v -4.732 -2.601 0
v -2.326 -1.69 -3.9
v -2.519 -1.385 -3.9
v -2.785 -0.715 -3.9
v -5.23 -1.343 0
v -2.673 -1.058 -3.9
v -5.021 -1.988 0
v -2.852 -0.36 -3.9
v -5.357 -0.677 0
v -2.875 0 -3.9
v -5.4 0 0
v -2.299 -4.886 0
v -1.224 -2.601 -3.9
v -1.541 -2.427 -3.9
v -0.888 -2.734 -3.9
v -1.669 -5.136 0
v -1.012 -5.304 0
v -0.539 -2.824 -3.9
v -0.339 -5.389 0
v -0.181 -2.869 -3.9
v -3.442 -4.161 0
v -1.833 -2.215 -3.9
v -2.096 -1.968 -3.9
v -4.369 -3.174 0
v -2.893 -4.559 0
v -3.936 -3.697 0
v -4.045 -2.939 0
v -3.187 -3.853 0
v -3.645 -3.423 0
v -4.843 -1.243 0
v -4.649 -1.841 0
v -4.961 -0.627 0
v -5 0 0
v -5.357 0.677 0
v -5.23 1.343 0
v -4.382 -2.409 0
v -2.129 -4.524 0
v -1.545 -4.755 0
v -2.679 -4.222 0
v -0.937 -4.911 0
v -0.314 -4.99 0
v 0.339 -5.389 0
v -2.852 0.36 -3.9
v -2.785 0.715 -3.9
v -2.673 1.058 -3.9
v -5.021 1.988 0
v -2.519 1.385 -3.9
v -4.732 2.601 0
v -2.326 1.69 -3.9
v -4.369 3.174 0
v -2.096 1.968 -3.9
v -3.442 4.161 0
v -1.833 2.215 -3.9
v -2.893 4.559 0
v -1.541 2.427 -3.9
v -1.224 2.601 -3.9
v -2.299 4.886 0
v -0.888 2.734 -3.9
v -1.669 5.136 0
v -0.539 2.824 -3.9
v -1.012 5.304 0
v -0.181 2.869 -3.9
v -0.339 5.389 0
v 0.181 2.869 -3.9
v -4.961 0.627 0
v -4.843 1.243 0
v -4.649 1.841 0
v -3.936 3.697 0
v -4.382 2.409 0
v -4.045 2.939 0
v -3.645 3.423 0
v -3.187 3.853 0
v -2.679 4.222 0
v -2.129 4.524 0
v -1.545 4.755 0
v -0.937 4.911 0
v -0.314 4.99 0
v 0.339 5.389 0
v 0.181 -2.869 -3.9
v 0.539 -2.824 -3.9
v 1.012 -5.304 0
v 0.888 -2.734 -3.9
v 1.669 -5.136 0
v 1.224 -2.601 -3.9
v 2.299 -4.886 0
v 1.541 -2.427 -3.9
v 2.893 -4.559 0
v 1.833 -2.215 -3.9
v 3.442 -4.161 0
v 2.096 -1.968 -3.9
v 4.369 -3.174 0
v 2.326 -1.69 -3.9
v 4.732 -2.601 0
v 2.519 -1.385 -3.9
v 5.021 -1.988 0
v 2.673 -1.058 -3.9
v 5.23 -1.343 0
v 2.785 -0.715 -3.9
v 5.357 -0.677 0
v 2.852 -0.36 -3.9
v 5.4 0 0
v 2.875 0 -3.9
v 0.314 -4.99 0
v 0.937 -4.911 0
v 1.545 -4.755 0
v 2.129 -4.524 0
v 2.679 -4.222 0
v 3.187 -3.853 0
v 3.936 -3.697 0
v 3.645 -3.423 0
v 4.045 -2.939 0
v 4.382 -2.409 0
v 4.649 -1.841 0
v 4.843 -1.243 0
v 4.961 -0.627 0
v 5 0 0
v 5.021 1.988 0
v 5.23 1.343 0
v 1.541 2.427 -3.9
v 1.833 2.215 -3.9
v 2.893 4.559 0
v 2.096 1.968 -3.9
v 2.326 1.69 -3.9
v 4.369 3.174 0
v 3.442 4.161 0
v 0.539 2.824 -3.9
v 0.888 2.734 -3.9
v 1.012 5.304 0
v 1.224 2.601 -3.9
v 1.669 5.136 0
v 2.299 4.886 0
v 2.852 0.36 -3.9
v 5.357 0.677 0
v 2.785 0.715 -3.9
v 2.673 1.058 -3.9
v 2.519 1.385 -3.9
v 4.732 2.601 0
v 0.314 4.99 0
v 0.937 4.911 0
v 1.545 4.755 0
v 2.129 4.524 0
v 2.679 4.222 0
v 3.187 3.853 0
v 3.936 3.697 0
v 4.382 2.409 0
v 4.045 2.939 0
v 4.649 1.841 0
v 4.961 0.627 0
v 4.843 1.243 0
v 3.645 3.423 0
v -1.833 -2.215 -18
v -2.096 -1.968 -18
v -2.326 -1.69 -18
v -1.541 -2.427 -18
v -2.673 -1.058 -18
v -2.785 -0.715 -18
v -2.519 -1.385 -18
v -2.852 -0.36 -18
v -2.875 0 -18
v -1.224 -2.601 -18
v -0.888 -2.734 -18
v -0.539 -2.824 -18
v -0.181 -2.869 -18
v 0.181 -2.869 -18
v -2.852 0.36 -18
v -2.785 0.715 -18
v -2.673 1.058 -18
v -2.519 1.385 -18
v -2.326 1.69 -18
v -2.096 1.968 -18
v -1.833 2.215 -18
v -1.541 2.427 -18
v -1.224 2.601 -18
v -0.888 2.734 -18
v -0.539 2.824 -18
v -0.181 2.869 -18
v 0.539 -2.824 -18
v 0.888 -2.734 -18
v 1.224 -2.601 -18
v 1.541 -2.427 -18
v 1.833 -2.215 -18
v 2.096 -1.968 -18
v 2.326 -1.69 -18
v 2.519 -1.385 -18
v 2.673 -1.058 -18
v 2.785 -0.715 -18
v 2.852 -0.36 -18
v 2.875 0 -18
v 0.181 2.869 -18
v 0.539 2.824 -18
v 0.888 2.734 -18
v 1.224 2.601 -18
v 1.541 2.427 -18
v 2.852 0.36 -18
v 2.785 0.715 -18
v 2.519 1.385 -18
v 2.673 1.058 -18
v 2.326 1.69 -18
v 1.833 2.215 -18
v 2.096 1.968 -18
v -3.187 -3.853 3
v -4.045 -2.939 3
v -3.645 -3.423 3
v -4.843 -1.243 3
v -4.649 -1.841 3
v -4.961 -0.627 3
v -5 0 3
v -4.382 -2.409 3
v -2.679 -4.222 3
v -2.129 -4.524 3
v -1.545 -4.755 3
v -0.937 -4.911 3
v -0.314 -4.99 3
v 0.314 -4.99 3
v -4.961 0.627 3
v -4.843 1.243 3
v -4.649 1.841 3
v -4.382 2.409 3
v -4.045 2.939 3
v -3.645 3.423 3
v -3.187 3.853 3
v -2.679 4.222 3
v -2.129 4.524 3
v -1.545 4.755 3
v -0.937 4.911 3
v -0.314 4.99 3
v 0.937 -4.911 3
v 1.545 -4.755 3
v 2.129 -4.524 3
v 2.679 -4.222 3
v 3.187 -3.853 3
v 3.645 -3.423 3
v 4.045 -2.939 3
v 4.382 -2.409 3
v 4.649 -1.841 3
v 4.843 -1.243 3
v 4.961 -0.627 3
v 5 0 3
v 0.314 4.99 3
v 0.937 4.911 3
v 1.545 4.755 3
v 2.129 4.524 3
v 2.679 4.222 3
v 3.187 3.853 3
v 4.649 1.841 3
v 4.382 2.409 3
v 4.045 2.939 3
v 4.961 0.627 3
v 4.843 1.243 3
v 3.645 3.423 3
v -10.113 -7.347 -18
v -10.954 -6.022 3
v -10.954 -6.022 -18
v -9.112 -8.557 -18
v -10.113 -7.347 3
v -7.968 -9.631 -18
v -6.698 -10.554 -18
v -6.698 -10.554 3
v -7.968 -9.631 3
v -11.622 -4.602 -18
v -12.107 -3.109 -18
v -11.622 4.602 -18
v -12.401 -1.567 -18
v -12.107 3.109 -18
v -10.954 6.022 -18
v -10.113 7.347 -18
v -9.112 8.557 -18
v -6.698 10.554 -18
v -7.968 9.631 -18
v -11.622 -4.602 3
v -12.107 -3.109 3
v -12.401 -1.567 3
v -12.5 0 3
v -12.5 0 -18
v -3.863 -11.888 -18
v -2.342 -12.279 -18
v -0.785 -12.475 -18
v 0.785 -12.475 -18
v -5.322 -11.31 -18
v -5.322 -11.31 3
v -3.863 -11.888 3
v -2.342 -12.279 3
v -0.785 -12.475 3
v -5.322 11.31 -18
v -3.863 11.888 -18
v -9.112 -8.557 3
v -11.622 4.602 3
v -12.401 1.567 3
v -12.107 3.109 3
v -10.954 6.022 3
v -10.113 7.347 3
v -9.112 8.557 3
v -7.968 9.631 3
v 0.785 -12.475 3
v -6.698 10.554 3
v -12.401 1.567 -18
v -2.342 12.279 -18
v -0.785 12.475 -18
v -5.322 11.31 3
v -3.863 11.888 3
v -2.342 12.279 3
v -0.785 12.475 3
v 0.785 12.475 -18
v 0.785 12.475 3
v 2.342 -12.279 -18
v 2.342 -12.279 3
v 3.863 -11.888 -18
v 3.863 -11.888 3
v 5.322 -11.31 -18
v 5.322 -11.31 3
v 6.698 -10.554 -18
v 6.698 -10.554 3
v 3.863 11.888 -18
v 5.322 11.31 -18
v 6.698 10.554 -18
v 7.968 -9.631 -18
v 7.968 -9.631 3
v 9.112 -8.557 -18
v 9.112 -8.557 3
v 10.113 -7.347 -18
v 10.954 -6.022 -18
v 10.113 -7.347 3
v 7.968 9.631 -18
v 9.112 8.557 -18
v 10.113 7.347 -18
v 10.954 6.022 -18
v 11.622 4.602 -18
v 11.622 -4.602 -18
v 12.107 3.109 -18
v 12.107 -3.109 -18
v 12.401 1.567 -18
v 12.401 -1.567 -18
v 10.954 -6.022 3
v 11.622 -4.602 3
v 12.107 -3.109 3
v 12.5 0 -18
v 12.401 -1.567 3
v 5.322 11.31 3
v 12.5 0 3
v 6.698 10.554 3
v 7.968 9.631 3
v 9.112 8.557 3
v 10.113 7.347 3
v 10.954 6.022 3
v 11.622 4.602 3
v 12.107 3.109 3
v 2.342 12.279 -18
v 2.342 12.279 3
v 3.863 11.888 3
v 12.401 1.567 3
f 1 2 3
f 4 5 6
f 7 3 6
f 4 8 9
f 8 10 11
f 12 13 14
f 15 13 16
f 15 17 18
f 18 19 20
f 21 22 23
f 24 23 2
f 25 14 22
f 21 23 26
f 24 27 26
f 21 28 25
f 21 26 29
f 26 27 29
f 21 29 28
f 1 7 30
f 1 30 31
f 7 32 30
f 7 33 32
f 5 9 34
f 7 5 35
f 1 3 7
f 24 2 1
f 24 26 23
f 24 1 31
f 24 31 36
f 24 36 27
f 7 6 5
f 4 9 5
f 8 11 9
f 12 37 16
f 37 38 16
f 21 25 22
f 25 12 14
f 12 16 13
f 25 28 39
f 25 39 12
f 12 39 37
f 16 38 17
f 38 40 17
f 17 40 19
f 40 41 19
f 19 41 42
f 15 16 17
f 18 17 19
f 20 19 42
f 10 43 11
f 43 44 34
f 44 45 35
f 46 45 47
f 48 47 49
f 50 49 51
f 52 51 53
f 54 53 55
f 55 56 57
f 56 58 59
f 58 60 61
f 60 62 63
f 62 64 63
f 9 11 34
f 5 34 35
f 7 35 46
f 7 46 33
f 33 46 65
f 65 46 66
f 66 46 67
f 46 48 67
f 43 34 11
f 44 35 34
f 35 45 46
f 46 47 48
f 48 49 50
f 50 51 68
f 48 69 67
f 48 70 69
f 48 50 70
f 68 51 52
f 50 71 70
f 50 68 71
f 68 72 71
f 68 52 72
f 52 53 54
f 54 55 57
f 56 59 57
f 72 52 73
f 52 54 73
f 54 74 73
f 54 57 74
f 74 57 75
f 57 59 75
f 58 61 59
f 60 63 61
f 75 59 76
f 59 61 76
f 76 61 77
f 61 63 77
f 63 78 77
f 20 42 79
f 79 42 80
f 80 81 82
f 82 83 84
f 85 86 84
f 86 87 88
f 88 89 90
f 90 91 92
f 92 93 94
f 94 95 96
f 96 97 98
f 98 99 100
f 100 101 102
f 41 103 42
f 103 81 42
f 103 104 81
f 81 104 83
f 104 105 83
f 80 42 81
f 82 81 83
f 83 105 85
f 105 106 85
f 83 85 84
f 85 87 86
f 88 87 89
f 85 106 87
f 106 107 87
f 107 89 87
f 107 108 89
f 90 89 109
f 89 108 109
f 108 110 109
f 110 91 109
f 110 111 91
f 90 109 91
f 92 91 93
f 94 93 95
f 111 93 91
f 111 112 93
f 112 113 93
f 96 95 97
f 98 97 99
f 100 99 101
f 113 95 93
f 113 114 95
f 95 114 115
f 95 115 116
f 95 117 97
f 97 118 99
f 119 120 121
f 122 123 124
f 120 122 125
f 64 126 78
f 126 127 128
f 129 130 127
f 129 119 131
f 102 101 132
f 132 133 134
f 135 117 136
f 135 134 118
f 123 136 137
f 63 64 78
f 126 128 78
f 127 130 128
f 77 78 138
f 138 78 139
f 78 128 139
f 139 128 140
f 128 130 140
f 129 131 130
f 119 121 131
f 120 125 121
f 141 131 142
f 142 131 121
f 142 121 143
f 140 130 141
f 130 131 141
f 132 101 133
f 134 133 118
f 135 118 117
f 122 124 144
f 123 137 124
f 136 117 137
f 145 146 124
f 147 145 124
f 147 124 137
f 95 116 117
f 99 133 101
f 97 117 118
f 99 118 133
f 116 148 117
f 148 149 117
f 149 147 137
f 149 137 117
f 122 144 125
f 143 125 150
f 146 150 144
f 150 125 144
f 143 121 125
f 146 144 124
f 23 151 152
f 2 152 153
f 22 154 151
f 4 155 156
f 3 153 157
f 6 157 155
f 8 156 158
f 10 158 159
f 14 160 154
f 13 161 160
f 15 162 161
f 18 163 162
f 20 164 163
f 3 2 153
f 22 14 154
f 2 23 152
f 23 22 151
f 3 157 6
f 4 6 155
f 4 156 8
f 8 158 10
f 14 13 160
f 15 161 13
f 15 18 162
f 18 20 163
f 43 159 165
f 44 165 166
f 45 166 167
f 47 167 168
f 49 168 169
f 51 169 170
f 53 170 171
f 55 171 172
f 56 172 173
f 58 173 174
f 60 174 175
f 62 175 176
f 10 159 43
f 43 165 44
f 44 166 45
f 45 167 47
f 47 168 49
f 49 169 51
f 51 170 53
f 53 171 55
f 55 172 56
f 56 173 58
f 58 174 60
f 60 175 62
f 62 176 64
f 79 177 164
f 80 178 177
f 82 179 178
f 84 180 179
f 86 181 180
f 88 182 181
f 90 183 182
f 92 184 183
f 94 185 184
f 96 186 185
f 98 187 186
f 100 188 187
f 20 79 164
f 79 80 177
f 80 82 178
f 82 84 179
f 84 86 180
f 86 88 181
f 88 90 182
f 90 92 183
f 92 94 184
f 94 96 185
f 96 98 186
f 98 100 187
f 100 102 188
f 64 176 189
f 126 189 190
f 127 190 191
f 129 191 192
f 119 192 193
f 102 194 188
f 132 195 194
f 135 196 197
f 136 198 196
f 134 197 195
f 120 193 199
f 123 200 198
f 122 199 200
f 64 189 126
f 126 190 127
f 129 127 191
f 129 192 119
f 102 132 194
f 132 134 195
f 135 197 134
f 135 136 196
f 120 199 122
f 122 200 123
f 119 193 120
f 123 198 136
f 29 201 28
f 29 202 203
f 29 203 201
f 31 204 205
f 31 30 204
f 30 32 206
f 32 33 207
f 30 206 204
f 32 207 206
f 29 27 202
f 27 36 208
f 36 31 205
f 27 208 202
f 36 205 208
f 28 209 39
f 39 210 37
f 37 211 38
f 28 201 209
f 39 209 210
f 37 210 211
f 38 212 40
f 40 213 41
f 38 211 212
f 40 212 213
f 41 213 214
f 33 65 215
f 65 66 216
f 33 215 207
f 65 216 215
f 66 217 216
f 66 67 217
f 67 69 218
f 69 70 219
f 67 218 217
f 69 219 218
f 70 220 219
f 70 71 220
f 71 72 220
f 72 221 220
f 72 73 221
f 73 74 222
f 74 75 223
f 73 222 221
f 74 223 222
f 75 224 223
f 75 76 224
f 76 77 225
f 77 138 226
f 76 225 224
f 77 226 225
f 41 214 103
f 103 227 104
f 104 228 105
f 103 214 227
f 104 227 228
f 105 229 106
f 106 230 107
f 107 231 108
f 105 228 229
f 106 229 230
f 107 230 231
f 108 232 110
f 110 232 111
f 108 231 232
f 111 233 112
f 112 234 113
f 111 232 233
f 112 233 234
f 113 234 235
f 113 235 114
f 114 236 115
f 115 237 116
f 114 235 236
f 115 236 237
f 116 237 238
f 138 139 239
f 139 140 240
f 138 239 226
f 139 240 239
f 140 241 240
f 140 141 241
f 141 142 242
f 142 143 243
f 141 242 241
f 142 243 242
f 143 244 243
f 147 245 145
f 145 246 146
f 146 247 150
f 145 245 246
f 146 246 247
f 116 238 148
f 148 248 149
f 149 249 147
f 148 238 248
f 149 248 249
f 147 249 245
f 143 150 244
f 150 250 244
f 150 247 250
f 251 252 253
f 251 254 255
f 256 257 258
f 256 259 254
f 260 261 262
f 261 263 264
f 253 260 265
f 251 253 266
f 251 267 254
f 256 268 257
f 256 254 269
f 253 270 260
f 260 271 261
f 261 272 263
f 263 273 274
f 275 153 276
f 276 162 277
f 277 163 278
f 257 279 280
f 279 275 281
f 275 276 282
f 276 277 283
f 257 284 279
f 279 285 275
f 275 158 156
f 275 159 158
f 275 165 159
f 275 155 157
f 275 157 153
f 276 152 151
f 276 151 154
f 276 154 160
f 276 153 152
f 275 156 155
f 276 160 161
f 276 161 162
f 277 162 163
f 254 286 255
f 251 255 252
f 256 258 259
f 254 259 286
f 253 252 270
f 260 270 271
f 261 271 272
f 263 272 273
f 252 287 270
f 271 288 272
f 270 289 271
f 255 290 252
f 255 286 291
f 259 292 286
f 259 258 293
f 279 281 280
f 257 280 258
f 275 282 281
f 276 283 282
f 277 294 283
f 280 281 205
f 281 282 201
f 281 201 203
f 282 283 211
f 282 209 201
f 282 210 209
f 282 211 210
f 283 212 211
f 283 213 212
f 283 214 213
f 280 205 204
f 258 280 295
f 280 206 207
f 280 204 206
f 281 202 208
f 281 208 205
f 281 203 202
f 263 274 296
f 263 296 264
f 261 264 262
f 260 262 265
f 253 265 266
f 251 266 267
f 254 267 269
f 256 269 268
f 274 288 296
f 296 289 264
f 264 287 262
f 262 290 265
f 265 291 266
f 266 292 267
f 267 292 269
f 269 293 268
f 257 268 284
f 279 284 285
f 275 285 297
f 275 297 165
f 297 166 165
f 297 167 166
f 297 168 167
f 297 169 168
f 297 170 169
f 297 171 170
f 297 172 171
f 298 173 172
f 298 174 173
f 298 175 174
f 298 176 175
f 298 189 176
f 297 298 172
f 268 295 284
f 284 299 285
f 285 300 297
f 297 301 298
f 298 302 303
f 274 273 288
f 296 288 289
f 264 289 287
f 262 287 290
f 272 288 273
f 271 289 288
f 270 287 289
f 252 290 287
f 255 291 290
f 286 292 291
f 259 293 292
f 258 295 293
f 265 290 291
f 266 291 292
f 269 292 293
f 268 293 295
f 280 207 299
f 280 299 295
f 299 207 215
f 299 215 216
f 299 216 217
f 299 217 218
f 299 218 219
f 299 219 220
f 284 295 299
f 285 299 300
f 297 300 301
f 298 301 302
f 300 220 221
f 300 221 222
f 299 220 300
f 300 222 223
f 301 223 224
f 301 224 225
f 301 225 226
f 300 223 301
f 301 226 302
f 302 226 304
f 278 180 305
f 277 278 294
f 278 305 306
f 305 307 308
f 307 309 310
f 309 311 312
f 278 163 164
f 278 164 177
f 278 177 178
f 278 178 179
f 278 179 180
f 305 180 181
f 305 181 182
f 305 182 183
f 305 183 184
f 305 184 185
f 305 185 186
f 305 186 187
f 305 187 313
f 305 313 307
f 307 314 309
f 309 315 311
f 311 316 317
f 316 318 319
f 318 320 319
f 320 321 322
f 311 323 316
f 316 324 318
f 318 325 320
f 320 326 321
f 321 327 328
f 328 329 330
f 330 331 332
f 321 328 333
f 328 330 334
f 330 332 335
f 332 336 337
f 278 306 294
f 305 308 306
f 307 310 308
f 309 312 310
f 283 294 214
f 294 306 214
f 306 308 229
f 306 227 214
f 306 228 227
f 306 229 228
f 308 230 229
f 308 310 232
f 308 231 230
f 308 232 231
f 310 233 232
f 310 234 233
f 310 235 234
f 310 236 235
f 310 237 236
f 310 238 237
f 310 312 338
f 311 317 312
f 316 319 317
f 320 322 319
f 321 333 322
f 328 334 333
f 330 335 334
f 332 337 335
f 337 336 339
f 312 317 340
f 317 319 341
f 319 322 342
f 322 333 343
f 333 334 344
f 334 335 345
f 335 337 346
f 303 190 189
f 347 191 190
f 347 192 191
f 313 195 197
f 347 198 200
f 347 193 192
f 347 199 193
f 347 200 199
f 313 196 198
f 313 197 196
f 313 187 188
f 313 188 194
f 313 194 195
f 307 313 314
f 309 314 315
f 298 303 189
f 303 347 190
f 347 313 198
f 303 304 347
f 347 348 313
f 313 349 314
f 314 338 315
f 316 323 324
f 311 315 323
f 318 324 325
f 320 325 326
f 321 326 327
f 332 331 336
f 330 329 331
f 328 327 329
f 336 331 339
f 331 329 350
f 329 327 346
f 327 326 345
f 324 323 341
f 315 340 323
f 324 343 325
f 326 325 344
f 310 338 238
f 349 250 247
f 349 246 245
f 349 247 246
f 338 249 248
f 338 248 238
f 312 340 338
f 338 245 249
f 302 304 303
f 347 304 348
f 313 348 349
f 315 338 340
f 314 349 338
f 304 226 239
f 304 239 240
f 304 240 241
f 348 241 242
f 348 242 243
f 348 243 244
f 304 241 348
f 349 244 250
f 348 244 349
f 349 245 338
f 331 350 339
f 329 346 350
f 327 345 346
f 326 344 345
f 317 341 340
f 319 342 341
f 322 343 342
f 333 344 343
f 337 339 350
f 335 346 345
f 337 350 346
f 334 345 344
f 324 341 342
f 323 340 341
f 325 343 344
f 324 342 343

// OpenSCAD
$fn = 50;


difference() {
	union() {
		translate(v = [0, 0, -18.0000000000]) {
			cylinder(h = 21, r = 12.5000000000);
		}
	}
	union() {
		translate(v = [0, 0, 0]) {
			rotate(a = [0, 0, 0]) {
				difference() {
					union() {
						translate(v = [0, 0, -21.0000000000]) {
							cylinder(h = 21, r = 2.6000000000);
						}
						translate(v = [0, 0, -3.9000000000]) {
							cylinder(h = 3.9000000000, r1 = 2.8750000000, r2 = 5.4000000000);
						}
						translate(v = [0, 0, -21.0000000000]) {
							cylinder(h = 21, r = 2.8750000000);
						}
						translate(v = [0, 0, -21.0000000000]) {
							cylinder(h = 21, r = 2.6000000000);
						}
					}
					union();
				}
			}
		}
		#cylinder(h = 3, r = 5.0000000000);
	}
}
